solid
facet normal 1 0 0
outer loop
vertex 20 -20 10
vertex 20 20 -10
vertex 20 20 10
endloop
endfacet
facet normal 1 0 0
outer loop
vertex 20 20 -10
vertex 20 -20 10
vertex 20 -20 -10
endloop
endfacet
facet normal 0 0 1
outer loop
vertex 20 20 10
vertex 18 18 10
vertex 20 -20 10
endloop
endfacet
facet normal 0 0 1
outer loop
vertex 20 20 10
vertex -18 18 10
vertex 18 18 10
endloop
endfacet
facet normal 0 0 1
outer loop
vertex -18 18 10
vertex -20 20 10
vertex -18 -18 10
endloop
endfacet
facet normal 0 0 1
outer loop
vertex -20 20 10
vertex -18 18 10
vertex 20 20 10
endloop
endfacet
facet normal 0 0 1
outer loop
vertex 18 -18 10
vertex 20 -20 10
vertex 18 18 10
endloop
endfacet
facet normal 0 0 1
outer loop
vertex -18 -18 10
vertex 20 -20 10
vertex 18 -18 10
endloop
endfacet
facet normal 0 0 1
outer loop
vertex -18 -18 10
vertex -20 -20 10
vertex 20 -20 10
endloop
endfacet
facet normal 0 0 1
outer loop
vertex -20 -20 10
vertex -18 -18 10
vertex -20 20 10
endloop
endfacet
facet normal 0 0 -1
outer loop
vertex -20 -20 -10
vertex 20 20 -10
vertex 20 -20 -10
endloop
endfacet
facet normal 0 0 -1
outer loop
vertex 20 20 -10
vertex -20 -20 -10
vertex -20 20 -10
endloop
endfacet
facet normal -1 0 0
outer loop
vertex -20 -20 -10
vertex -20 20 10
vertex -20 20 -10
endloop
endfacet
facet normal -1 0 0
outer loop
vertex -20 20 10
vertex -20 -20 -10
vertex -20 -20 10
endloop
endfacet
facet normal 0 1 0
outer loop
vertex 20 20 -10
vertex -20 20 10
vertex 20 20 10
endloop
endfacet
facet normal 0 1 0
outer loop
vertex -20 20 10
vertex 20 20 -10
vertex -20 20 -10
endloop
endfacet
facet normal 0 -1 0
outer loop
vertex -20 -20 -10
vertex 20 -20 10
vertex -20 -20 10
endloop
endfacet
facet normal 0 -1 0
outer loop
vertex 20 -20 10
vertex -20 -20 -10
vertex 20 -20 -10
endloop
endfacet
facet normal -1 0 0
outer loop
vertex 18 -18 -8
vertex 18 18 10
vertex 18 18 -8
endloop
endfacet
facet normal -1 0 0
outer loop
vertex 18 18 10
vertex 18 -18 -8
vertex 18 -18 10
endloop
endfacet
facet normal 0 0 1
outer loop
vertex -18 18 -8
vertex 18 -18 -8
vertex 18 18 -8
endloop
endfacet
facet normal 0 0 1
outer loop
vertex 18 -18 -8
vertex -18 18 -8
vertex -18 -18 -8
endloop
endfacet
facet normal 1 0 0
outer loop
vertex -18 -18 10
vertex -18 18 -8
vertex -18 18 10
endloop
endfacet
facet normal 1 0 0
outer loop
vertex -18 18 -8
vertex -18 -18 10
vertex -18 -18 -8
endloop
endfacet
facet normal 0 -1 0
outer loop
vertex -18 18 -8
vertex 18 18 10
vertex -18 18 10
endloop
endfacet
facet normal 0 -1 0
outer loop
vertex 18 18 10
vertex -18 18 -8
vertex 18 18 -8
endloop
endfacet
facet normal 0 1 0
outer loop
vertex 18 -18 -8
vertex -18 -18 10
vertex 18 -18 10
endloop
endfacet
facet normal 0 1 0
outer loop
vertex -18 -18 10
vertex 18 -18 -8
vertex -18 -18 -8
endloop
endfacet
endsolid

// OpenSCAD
// Parameters for the square box
box_size = [40, 40, 20]; // Dimensions: Width, Depth, Height
wall_thickness = 2;      // Thickness of the walls

// Create the solid outer box
difference() {
    cube(box_size, center = true); // The outer box
    
    // Create the hollow inside
    translate([0, 0, wall_thickness])
        cube([box_size[0] - 2*wall_thickness, box_size[1] - 2*wall_thickness, box_size[2]], center = true);
}
